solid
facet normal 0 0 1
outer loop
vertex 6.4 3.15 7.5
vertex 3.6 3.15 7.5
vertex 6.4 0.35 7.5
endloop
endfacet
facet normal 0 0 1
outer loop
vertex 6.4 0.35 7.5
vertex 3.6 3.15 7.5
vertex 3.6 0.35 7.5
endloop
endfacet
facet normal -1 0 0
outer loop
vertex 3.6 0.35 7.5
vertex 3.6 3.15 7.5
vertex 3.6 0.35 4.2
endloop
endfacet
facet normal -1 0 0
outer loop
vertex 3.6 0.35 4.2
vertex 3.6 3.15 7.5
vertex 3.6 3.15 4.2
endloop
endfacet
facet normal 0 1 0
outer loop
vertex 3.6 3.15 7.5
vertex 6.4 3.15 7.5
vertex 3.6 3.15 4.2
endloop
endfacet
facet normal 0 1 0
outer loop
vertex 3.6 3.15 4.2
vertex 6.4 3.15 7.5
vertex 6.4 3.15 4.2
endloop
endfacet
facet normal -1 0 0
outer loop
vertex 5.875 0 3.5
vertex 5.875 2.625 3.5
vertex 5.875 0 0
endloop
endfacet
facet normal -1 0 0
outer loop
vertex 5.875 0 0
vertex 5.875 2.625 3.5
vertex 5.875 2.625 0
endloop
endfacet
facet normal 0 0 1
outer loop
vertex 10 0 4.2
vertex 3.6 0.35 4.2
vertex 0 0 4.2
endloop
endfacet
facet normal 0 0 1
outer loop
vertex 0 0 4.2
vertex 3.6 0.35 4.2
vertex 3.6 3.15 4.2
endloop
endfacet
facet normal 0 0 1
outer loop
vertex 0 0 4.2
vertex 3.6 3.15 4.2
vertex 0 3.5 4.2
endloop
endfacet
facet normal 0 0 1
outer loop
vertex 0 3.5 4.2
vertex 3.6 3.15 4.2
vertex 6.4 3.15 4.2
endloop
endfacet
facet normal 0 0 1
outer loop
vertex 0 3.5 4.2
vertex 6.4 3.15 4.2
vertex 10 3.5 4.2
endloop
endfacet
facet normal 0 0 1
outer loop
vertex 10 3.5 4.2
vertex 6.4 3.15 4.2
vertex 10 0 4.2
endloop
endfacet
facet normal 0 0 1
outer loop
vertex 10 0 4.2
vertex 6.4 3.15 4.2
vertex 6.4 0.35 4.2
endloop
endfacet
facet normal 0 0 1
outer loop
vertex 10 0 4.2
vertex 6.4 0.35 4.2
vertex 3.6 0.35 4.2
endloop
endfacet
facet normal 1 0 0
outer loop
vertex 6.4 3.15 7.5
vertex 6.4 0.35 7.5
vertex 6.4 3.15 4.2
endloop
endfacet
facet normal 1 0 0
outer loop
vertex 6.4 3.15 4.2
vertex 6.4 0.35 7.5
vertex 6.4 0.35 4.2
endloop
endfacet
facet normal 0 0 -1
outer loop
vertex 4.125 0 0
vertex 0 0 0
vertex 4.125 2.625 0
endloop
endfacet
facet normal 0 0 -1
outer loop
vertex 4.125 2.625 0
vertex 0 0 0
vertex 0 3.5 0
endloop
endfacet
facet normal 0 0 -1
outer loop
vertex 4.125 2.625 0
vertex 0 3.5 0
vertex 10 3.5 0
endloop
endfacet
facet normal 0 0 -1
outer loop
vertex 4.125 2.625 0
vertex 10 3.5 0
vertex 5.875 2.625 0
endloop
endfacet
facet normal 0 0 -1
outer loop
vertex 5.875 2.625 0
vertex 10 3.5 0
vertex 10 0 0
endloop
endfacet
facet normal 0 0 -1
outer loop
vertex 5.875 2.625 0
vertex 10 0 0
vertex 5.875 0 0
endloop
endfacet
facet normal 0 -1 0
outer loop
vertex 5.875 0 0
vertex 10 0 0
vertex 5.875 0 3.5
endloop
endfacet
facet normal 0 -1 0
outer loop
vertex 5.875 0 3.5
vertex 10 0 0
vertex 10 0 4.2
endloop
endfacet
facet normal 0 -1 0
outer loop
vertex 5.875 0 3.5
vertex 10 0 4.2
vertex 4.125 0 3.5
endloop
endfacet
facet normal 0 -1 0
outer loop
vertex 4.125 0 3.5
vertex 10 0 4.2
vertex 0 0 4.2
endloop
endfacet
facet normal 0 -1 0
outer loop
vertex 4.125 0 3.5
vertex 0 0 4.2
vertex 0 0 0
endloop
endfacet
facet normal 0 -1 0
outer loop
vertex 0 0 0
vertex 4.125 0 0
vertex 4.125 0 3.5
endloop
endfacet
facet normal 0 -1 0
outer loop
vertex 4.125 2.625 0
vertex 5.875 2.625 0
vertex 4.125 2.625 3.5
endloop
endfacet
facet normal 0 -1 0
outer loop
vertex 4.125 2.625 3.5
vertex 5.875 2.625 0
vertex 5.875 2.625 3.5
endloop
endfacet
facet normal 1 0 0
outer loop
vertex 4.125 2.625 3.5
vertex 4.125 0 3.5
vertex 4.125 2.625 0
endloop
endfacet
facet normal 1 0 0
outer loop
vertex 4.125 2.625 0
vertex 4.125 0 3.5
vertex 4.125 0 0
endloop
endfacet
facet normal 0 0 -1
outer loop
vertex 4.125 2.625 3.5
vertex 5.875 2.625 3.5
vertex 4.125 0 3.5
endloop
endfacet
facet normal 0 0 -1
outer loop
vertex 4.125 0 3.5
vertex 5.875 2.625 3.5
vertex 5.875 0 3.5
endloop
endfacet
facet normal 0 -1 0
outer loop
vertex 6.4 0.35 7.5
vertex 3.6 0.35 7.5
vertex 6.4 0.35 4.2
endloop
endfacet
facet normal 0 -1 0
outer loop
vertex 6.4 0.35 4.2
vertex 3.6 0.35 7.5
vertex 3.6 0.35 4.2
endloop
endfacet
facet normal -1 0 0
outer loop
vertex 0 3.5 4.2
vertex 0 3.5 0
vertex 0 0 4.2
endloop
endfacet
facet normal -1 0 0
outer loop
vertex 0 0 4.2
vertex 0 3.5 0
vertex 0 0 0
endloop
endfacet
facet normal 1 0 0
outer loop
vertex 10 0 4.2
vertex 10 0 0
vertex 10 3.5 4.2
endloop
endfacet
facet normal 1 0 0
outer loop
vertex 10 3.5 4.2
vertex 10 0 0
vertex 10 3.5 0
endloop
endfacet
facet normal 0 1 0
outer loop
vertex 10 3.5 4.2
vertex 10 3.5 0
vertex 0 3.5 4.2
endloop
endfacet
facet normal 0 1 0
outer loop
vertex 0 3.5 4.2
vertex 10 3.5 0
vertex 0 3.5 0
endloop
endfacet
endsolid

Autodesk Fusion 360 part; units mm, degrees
box "BoxPrimitive1" add length 3.5 width 10 height 7 placed x (0, 1, 0) y (-1, 0, 0) z (0, 0, 1) at (10, 0, 0)
sketch "Sketch2" plane through (0, 0, 7) normal (0, 0, 1) x (-1, 0, 0)
  line L0 (-10, -3.5) -> (0, -3.5)
  line L1 (0, -3.5) -> (0, 0)
  line L2 (0, 0) -> (-10, 0)
  line L3 (-10, 0) -> (-10, -3.5)
  line L4 (-5, -3.5) -> (-5, -1.75)
  line L5 (-6.4, -0.35) -> (-3.6, -0.35)
  line L6 (-3.6, -0.35) -> (-3.6, -3.15)
  line L7 (-3.6, -3.15) -> (-6.4, -3.15)
  line L8 (-6.4, -3.15) -> (-6.4, -0.35)
  line L9 (-6.4, -0.35) -> (-3.6, -3.15) construction
  line L10 (-3.6, -0.35) -> (-6.4, -3.15) construction
  point P0 (-5, -1.75)
  dimension "d6" = 1.75
  dimension "d7" = 2.8
  dimension "d8" = 2.8
extrude "Extrude1" cut sketch "Sketch2" against normal blind 3.5
sketch "Sketch3" plane through (0, 0, 0) normal (0, 0, -1) x (1, 0, 0)
  line L0 (0, -3.5) -> (10, -3.5)
  line L1 (10, -3.5) -> (10, 0)
  line L2 (10, 0) -> (0, 0)
  line L3 (0, 0) -> (0, -3.5)
  line L4 (5.875, -2.625) -> (4.125, -2.625)
  line L5 (4.125, -2.625) -> (4.125, -0.875)
  line L6 (4.125, -0.875) -> (5.875, -0.875)
  line L7 (5.875, -0.875) -> (5.875, -2.625)
  line L8 (5.875, -2.625) -> (4.125, -0.875) construction
  line L9 (4.125, -2.625) -> (5.875, -0.875) construction
  line L10 (4.125, -0.875) -> (5.875, -0.875)
  line L11 (5.875, -0.875) -> (5.875, 0)
  line L12 (5.875, 0) -> (4.125, 0)
  line L13 (4.125, 0) -> (4.125, -0.875)
  point P0 (5, -1.75)
  point P1 (5, -1.75)
  dimension "d11" = 1.75
  dimension "d12" = 1.75
  dimension "d17" = 1.75
extrude "Extrude2" cut sketch "Sketch3" against normal blind 3.5 contours L4 L5 L6 L7 L10
extrude "Extrude3" add sketch "Sketch2" along normal blind 1 contours L5 L6 L7 L8
extrude "Extrude4" cut sketch "Sketch3" against normal blind 3.5 contours L2 L6 L10 L11 L12 L13
extrude "Extrude5" add 1 faces at (8.8, 1.2833, 3.5) along direction (0, 0, 1) blind 0.7
sketch "Sketch4" plane through (0, 0.35, 0) normal (0, -1, 0) x (1, 0, 0)
  line L0 (5.875, 4.2) -> (6.4, 4.2)
  line L1 (6.4, 4.2) -> (6.4, 8)
  line L2 (6.4, 8) -> (3.6, 8)
  line L3 (3.6, 8) -> (3.6, 4.2)
  line L4 (3.6, 4.2) -> (4.125, 4.2)
  line L5 (4.125, 4.2) -> (4.125, 3.5)
  line L6 (4.125, 3.5) -> (5.875, 3.5)
  line L7 (5.875, 3.5) -> (5.875, 4.2)
  line L8 (4.125, 3.5) -> (5.875, 3.5)
  line L9 (5.875, 3.5) -> (5.875, 4.2)
  line L10 (5.875, 4.2) -> (4.125, 4.2)
  line L11 (4.125, 4.2) -> (4.125, 3.5)
extrude "Extrude6" add sketch "Sketch4" along normal blind 0.35 contours L5 L6 L7 L8 L9 L10 L11
extrude "Extrude7" cut 1 faces at (5.4667, 1.2833, 8) along direction (0, 0, -1) blind 0.5
